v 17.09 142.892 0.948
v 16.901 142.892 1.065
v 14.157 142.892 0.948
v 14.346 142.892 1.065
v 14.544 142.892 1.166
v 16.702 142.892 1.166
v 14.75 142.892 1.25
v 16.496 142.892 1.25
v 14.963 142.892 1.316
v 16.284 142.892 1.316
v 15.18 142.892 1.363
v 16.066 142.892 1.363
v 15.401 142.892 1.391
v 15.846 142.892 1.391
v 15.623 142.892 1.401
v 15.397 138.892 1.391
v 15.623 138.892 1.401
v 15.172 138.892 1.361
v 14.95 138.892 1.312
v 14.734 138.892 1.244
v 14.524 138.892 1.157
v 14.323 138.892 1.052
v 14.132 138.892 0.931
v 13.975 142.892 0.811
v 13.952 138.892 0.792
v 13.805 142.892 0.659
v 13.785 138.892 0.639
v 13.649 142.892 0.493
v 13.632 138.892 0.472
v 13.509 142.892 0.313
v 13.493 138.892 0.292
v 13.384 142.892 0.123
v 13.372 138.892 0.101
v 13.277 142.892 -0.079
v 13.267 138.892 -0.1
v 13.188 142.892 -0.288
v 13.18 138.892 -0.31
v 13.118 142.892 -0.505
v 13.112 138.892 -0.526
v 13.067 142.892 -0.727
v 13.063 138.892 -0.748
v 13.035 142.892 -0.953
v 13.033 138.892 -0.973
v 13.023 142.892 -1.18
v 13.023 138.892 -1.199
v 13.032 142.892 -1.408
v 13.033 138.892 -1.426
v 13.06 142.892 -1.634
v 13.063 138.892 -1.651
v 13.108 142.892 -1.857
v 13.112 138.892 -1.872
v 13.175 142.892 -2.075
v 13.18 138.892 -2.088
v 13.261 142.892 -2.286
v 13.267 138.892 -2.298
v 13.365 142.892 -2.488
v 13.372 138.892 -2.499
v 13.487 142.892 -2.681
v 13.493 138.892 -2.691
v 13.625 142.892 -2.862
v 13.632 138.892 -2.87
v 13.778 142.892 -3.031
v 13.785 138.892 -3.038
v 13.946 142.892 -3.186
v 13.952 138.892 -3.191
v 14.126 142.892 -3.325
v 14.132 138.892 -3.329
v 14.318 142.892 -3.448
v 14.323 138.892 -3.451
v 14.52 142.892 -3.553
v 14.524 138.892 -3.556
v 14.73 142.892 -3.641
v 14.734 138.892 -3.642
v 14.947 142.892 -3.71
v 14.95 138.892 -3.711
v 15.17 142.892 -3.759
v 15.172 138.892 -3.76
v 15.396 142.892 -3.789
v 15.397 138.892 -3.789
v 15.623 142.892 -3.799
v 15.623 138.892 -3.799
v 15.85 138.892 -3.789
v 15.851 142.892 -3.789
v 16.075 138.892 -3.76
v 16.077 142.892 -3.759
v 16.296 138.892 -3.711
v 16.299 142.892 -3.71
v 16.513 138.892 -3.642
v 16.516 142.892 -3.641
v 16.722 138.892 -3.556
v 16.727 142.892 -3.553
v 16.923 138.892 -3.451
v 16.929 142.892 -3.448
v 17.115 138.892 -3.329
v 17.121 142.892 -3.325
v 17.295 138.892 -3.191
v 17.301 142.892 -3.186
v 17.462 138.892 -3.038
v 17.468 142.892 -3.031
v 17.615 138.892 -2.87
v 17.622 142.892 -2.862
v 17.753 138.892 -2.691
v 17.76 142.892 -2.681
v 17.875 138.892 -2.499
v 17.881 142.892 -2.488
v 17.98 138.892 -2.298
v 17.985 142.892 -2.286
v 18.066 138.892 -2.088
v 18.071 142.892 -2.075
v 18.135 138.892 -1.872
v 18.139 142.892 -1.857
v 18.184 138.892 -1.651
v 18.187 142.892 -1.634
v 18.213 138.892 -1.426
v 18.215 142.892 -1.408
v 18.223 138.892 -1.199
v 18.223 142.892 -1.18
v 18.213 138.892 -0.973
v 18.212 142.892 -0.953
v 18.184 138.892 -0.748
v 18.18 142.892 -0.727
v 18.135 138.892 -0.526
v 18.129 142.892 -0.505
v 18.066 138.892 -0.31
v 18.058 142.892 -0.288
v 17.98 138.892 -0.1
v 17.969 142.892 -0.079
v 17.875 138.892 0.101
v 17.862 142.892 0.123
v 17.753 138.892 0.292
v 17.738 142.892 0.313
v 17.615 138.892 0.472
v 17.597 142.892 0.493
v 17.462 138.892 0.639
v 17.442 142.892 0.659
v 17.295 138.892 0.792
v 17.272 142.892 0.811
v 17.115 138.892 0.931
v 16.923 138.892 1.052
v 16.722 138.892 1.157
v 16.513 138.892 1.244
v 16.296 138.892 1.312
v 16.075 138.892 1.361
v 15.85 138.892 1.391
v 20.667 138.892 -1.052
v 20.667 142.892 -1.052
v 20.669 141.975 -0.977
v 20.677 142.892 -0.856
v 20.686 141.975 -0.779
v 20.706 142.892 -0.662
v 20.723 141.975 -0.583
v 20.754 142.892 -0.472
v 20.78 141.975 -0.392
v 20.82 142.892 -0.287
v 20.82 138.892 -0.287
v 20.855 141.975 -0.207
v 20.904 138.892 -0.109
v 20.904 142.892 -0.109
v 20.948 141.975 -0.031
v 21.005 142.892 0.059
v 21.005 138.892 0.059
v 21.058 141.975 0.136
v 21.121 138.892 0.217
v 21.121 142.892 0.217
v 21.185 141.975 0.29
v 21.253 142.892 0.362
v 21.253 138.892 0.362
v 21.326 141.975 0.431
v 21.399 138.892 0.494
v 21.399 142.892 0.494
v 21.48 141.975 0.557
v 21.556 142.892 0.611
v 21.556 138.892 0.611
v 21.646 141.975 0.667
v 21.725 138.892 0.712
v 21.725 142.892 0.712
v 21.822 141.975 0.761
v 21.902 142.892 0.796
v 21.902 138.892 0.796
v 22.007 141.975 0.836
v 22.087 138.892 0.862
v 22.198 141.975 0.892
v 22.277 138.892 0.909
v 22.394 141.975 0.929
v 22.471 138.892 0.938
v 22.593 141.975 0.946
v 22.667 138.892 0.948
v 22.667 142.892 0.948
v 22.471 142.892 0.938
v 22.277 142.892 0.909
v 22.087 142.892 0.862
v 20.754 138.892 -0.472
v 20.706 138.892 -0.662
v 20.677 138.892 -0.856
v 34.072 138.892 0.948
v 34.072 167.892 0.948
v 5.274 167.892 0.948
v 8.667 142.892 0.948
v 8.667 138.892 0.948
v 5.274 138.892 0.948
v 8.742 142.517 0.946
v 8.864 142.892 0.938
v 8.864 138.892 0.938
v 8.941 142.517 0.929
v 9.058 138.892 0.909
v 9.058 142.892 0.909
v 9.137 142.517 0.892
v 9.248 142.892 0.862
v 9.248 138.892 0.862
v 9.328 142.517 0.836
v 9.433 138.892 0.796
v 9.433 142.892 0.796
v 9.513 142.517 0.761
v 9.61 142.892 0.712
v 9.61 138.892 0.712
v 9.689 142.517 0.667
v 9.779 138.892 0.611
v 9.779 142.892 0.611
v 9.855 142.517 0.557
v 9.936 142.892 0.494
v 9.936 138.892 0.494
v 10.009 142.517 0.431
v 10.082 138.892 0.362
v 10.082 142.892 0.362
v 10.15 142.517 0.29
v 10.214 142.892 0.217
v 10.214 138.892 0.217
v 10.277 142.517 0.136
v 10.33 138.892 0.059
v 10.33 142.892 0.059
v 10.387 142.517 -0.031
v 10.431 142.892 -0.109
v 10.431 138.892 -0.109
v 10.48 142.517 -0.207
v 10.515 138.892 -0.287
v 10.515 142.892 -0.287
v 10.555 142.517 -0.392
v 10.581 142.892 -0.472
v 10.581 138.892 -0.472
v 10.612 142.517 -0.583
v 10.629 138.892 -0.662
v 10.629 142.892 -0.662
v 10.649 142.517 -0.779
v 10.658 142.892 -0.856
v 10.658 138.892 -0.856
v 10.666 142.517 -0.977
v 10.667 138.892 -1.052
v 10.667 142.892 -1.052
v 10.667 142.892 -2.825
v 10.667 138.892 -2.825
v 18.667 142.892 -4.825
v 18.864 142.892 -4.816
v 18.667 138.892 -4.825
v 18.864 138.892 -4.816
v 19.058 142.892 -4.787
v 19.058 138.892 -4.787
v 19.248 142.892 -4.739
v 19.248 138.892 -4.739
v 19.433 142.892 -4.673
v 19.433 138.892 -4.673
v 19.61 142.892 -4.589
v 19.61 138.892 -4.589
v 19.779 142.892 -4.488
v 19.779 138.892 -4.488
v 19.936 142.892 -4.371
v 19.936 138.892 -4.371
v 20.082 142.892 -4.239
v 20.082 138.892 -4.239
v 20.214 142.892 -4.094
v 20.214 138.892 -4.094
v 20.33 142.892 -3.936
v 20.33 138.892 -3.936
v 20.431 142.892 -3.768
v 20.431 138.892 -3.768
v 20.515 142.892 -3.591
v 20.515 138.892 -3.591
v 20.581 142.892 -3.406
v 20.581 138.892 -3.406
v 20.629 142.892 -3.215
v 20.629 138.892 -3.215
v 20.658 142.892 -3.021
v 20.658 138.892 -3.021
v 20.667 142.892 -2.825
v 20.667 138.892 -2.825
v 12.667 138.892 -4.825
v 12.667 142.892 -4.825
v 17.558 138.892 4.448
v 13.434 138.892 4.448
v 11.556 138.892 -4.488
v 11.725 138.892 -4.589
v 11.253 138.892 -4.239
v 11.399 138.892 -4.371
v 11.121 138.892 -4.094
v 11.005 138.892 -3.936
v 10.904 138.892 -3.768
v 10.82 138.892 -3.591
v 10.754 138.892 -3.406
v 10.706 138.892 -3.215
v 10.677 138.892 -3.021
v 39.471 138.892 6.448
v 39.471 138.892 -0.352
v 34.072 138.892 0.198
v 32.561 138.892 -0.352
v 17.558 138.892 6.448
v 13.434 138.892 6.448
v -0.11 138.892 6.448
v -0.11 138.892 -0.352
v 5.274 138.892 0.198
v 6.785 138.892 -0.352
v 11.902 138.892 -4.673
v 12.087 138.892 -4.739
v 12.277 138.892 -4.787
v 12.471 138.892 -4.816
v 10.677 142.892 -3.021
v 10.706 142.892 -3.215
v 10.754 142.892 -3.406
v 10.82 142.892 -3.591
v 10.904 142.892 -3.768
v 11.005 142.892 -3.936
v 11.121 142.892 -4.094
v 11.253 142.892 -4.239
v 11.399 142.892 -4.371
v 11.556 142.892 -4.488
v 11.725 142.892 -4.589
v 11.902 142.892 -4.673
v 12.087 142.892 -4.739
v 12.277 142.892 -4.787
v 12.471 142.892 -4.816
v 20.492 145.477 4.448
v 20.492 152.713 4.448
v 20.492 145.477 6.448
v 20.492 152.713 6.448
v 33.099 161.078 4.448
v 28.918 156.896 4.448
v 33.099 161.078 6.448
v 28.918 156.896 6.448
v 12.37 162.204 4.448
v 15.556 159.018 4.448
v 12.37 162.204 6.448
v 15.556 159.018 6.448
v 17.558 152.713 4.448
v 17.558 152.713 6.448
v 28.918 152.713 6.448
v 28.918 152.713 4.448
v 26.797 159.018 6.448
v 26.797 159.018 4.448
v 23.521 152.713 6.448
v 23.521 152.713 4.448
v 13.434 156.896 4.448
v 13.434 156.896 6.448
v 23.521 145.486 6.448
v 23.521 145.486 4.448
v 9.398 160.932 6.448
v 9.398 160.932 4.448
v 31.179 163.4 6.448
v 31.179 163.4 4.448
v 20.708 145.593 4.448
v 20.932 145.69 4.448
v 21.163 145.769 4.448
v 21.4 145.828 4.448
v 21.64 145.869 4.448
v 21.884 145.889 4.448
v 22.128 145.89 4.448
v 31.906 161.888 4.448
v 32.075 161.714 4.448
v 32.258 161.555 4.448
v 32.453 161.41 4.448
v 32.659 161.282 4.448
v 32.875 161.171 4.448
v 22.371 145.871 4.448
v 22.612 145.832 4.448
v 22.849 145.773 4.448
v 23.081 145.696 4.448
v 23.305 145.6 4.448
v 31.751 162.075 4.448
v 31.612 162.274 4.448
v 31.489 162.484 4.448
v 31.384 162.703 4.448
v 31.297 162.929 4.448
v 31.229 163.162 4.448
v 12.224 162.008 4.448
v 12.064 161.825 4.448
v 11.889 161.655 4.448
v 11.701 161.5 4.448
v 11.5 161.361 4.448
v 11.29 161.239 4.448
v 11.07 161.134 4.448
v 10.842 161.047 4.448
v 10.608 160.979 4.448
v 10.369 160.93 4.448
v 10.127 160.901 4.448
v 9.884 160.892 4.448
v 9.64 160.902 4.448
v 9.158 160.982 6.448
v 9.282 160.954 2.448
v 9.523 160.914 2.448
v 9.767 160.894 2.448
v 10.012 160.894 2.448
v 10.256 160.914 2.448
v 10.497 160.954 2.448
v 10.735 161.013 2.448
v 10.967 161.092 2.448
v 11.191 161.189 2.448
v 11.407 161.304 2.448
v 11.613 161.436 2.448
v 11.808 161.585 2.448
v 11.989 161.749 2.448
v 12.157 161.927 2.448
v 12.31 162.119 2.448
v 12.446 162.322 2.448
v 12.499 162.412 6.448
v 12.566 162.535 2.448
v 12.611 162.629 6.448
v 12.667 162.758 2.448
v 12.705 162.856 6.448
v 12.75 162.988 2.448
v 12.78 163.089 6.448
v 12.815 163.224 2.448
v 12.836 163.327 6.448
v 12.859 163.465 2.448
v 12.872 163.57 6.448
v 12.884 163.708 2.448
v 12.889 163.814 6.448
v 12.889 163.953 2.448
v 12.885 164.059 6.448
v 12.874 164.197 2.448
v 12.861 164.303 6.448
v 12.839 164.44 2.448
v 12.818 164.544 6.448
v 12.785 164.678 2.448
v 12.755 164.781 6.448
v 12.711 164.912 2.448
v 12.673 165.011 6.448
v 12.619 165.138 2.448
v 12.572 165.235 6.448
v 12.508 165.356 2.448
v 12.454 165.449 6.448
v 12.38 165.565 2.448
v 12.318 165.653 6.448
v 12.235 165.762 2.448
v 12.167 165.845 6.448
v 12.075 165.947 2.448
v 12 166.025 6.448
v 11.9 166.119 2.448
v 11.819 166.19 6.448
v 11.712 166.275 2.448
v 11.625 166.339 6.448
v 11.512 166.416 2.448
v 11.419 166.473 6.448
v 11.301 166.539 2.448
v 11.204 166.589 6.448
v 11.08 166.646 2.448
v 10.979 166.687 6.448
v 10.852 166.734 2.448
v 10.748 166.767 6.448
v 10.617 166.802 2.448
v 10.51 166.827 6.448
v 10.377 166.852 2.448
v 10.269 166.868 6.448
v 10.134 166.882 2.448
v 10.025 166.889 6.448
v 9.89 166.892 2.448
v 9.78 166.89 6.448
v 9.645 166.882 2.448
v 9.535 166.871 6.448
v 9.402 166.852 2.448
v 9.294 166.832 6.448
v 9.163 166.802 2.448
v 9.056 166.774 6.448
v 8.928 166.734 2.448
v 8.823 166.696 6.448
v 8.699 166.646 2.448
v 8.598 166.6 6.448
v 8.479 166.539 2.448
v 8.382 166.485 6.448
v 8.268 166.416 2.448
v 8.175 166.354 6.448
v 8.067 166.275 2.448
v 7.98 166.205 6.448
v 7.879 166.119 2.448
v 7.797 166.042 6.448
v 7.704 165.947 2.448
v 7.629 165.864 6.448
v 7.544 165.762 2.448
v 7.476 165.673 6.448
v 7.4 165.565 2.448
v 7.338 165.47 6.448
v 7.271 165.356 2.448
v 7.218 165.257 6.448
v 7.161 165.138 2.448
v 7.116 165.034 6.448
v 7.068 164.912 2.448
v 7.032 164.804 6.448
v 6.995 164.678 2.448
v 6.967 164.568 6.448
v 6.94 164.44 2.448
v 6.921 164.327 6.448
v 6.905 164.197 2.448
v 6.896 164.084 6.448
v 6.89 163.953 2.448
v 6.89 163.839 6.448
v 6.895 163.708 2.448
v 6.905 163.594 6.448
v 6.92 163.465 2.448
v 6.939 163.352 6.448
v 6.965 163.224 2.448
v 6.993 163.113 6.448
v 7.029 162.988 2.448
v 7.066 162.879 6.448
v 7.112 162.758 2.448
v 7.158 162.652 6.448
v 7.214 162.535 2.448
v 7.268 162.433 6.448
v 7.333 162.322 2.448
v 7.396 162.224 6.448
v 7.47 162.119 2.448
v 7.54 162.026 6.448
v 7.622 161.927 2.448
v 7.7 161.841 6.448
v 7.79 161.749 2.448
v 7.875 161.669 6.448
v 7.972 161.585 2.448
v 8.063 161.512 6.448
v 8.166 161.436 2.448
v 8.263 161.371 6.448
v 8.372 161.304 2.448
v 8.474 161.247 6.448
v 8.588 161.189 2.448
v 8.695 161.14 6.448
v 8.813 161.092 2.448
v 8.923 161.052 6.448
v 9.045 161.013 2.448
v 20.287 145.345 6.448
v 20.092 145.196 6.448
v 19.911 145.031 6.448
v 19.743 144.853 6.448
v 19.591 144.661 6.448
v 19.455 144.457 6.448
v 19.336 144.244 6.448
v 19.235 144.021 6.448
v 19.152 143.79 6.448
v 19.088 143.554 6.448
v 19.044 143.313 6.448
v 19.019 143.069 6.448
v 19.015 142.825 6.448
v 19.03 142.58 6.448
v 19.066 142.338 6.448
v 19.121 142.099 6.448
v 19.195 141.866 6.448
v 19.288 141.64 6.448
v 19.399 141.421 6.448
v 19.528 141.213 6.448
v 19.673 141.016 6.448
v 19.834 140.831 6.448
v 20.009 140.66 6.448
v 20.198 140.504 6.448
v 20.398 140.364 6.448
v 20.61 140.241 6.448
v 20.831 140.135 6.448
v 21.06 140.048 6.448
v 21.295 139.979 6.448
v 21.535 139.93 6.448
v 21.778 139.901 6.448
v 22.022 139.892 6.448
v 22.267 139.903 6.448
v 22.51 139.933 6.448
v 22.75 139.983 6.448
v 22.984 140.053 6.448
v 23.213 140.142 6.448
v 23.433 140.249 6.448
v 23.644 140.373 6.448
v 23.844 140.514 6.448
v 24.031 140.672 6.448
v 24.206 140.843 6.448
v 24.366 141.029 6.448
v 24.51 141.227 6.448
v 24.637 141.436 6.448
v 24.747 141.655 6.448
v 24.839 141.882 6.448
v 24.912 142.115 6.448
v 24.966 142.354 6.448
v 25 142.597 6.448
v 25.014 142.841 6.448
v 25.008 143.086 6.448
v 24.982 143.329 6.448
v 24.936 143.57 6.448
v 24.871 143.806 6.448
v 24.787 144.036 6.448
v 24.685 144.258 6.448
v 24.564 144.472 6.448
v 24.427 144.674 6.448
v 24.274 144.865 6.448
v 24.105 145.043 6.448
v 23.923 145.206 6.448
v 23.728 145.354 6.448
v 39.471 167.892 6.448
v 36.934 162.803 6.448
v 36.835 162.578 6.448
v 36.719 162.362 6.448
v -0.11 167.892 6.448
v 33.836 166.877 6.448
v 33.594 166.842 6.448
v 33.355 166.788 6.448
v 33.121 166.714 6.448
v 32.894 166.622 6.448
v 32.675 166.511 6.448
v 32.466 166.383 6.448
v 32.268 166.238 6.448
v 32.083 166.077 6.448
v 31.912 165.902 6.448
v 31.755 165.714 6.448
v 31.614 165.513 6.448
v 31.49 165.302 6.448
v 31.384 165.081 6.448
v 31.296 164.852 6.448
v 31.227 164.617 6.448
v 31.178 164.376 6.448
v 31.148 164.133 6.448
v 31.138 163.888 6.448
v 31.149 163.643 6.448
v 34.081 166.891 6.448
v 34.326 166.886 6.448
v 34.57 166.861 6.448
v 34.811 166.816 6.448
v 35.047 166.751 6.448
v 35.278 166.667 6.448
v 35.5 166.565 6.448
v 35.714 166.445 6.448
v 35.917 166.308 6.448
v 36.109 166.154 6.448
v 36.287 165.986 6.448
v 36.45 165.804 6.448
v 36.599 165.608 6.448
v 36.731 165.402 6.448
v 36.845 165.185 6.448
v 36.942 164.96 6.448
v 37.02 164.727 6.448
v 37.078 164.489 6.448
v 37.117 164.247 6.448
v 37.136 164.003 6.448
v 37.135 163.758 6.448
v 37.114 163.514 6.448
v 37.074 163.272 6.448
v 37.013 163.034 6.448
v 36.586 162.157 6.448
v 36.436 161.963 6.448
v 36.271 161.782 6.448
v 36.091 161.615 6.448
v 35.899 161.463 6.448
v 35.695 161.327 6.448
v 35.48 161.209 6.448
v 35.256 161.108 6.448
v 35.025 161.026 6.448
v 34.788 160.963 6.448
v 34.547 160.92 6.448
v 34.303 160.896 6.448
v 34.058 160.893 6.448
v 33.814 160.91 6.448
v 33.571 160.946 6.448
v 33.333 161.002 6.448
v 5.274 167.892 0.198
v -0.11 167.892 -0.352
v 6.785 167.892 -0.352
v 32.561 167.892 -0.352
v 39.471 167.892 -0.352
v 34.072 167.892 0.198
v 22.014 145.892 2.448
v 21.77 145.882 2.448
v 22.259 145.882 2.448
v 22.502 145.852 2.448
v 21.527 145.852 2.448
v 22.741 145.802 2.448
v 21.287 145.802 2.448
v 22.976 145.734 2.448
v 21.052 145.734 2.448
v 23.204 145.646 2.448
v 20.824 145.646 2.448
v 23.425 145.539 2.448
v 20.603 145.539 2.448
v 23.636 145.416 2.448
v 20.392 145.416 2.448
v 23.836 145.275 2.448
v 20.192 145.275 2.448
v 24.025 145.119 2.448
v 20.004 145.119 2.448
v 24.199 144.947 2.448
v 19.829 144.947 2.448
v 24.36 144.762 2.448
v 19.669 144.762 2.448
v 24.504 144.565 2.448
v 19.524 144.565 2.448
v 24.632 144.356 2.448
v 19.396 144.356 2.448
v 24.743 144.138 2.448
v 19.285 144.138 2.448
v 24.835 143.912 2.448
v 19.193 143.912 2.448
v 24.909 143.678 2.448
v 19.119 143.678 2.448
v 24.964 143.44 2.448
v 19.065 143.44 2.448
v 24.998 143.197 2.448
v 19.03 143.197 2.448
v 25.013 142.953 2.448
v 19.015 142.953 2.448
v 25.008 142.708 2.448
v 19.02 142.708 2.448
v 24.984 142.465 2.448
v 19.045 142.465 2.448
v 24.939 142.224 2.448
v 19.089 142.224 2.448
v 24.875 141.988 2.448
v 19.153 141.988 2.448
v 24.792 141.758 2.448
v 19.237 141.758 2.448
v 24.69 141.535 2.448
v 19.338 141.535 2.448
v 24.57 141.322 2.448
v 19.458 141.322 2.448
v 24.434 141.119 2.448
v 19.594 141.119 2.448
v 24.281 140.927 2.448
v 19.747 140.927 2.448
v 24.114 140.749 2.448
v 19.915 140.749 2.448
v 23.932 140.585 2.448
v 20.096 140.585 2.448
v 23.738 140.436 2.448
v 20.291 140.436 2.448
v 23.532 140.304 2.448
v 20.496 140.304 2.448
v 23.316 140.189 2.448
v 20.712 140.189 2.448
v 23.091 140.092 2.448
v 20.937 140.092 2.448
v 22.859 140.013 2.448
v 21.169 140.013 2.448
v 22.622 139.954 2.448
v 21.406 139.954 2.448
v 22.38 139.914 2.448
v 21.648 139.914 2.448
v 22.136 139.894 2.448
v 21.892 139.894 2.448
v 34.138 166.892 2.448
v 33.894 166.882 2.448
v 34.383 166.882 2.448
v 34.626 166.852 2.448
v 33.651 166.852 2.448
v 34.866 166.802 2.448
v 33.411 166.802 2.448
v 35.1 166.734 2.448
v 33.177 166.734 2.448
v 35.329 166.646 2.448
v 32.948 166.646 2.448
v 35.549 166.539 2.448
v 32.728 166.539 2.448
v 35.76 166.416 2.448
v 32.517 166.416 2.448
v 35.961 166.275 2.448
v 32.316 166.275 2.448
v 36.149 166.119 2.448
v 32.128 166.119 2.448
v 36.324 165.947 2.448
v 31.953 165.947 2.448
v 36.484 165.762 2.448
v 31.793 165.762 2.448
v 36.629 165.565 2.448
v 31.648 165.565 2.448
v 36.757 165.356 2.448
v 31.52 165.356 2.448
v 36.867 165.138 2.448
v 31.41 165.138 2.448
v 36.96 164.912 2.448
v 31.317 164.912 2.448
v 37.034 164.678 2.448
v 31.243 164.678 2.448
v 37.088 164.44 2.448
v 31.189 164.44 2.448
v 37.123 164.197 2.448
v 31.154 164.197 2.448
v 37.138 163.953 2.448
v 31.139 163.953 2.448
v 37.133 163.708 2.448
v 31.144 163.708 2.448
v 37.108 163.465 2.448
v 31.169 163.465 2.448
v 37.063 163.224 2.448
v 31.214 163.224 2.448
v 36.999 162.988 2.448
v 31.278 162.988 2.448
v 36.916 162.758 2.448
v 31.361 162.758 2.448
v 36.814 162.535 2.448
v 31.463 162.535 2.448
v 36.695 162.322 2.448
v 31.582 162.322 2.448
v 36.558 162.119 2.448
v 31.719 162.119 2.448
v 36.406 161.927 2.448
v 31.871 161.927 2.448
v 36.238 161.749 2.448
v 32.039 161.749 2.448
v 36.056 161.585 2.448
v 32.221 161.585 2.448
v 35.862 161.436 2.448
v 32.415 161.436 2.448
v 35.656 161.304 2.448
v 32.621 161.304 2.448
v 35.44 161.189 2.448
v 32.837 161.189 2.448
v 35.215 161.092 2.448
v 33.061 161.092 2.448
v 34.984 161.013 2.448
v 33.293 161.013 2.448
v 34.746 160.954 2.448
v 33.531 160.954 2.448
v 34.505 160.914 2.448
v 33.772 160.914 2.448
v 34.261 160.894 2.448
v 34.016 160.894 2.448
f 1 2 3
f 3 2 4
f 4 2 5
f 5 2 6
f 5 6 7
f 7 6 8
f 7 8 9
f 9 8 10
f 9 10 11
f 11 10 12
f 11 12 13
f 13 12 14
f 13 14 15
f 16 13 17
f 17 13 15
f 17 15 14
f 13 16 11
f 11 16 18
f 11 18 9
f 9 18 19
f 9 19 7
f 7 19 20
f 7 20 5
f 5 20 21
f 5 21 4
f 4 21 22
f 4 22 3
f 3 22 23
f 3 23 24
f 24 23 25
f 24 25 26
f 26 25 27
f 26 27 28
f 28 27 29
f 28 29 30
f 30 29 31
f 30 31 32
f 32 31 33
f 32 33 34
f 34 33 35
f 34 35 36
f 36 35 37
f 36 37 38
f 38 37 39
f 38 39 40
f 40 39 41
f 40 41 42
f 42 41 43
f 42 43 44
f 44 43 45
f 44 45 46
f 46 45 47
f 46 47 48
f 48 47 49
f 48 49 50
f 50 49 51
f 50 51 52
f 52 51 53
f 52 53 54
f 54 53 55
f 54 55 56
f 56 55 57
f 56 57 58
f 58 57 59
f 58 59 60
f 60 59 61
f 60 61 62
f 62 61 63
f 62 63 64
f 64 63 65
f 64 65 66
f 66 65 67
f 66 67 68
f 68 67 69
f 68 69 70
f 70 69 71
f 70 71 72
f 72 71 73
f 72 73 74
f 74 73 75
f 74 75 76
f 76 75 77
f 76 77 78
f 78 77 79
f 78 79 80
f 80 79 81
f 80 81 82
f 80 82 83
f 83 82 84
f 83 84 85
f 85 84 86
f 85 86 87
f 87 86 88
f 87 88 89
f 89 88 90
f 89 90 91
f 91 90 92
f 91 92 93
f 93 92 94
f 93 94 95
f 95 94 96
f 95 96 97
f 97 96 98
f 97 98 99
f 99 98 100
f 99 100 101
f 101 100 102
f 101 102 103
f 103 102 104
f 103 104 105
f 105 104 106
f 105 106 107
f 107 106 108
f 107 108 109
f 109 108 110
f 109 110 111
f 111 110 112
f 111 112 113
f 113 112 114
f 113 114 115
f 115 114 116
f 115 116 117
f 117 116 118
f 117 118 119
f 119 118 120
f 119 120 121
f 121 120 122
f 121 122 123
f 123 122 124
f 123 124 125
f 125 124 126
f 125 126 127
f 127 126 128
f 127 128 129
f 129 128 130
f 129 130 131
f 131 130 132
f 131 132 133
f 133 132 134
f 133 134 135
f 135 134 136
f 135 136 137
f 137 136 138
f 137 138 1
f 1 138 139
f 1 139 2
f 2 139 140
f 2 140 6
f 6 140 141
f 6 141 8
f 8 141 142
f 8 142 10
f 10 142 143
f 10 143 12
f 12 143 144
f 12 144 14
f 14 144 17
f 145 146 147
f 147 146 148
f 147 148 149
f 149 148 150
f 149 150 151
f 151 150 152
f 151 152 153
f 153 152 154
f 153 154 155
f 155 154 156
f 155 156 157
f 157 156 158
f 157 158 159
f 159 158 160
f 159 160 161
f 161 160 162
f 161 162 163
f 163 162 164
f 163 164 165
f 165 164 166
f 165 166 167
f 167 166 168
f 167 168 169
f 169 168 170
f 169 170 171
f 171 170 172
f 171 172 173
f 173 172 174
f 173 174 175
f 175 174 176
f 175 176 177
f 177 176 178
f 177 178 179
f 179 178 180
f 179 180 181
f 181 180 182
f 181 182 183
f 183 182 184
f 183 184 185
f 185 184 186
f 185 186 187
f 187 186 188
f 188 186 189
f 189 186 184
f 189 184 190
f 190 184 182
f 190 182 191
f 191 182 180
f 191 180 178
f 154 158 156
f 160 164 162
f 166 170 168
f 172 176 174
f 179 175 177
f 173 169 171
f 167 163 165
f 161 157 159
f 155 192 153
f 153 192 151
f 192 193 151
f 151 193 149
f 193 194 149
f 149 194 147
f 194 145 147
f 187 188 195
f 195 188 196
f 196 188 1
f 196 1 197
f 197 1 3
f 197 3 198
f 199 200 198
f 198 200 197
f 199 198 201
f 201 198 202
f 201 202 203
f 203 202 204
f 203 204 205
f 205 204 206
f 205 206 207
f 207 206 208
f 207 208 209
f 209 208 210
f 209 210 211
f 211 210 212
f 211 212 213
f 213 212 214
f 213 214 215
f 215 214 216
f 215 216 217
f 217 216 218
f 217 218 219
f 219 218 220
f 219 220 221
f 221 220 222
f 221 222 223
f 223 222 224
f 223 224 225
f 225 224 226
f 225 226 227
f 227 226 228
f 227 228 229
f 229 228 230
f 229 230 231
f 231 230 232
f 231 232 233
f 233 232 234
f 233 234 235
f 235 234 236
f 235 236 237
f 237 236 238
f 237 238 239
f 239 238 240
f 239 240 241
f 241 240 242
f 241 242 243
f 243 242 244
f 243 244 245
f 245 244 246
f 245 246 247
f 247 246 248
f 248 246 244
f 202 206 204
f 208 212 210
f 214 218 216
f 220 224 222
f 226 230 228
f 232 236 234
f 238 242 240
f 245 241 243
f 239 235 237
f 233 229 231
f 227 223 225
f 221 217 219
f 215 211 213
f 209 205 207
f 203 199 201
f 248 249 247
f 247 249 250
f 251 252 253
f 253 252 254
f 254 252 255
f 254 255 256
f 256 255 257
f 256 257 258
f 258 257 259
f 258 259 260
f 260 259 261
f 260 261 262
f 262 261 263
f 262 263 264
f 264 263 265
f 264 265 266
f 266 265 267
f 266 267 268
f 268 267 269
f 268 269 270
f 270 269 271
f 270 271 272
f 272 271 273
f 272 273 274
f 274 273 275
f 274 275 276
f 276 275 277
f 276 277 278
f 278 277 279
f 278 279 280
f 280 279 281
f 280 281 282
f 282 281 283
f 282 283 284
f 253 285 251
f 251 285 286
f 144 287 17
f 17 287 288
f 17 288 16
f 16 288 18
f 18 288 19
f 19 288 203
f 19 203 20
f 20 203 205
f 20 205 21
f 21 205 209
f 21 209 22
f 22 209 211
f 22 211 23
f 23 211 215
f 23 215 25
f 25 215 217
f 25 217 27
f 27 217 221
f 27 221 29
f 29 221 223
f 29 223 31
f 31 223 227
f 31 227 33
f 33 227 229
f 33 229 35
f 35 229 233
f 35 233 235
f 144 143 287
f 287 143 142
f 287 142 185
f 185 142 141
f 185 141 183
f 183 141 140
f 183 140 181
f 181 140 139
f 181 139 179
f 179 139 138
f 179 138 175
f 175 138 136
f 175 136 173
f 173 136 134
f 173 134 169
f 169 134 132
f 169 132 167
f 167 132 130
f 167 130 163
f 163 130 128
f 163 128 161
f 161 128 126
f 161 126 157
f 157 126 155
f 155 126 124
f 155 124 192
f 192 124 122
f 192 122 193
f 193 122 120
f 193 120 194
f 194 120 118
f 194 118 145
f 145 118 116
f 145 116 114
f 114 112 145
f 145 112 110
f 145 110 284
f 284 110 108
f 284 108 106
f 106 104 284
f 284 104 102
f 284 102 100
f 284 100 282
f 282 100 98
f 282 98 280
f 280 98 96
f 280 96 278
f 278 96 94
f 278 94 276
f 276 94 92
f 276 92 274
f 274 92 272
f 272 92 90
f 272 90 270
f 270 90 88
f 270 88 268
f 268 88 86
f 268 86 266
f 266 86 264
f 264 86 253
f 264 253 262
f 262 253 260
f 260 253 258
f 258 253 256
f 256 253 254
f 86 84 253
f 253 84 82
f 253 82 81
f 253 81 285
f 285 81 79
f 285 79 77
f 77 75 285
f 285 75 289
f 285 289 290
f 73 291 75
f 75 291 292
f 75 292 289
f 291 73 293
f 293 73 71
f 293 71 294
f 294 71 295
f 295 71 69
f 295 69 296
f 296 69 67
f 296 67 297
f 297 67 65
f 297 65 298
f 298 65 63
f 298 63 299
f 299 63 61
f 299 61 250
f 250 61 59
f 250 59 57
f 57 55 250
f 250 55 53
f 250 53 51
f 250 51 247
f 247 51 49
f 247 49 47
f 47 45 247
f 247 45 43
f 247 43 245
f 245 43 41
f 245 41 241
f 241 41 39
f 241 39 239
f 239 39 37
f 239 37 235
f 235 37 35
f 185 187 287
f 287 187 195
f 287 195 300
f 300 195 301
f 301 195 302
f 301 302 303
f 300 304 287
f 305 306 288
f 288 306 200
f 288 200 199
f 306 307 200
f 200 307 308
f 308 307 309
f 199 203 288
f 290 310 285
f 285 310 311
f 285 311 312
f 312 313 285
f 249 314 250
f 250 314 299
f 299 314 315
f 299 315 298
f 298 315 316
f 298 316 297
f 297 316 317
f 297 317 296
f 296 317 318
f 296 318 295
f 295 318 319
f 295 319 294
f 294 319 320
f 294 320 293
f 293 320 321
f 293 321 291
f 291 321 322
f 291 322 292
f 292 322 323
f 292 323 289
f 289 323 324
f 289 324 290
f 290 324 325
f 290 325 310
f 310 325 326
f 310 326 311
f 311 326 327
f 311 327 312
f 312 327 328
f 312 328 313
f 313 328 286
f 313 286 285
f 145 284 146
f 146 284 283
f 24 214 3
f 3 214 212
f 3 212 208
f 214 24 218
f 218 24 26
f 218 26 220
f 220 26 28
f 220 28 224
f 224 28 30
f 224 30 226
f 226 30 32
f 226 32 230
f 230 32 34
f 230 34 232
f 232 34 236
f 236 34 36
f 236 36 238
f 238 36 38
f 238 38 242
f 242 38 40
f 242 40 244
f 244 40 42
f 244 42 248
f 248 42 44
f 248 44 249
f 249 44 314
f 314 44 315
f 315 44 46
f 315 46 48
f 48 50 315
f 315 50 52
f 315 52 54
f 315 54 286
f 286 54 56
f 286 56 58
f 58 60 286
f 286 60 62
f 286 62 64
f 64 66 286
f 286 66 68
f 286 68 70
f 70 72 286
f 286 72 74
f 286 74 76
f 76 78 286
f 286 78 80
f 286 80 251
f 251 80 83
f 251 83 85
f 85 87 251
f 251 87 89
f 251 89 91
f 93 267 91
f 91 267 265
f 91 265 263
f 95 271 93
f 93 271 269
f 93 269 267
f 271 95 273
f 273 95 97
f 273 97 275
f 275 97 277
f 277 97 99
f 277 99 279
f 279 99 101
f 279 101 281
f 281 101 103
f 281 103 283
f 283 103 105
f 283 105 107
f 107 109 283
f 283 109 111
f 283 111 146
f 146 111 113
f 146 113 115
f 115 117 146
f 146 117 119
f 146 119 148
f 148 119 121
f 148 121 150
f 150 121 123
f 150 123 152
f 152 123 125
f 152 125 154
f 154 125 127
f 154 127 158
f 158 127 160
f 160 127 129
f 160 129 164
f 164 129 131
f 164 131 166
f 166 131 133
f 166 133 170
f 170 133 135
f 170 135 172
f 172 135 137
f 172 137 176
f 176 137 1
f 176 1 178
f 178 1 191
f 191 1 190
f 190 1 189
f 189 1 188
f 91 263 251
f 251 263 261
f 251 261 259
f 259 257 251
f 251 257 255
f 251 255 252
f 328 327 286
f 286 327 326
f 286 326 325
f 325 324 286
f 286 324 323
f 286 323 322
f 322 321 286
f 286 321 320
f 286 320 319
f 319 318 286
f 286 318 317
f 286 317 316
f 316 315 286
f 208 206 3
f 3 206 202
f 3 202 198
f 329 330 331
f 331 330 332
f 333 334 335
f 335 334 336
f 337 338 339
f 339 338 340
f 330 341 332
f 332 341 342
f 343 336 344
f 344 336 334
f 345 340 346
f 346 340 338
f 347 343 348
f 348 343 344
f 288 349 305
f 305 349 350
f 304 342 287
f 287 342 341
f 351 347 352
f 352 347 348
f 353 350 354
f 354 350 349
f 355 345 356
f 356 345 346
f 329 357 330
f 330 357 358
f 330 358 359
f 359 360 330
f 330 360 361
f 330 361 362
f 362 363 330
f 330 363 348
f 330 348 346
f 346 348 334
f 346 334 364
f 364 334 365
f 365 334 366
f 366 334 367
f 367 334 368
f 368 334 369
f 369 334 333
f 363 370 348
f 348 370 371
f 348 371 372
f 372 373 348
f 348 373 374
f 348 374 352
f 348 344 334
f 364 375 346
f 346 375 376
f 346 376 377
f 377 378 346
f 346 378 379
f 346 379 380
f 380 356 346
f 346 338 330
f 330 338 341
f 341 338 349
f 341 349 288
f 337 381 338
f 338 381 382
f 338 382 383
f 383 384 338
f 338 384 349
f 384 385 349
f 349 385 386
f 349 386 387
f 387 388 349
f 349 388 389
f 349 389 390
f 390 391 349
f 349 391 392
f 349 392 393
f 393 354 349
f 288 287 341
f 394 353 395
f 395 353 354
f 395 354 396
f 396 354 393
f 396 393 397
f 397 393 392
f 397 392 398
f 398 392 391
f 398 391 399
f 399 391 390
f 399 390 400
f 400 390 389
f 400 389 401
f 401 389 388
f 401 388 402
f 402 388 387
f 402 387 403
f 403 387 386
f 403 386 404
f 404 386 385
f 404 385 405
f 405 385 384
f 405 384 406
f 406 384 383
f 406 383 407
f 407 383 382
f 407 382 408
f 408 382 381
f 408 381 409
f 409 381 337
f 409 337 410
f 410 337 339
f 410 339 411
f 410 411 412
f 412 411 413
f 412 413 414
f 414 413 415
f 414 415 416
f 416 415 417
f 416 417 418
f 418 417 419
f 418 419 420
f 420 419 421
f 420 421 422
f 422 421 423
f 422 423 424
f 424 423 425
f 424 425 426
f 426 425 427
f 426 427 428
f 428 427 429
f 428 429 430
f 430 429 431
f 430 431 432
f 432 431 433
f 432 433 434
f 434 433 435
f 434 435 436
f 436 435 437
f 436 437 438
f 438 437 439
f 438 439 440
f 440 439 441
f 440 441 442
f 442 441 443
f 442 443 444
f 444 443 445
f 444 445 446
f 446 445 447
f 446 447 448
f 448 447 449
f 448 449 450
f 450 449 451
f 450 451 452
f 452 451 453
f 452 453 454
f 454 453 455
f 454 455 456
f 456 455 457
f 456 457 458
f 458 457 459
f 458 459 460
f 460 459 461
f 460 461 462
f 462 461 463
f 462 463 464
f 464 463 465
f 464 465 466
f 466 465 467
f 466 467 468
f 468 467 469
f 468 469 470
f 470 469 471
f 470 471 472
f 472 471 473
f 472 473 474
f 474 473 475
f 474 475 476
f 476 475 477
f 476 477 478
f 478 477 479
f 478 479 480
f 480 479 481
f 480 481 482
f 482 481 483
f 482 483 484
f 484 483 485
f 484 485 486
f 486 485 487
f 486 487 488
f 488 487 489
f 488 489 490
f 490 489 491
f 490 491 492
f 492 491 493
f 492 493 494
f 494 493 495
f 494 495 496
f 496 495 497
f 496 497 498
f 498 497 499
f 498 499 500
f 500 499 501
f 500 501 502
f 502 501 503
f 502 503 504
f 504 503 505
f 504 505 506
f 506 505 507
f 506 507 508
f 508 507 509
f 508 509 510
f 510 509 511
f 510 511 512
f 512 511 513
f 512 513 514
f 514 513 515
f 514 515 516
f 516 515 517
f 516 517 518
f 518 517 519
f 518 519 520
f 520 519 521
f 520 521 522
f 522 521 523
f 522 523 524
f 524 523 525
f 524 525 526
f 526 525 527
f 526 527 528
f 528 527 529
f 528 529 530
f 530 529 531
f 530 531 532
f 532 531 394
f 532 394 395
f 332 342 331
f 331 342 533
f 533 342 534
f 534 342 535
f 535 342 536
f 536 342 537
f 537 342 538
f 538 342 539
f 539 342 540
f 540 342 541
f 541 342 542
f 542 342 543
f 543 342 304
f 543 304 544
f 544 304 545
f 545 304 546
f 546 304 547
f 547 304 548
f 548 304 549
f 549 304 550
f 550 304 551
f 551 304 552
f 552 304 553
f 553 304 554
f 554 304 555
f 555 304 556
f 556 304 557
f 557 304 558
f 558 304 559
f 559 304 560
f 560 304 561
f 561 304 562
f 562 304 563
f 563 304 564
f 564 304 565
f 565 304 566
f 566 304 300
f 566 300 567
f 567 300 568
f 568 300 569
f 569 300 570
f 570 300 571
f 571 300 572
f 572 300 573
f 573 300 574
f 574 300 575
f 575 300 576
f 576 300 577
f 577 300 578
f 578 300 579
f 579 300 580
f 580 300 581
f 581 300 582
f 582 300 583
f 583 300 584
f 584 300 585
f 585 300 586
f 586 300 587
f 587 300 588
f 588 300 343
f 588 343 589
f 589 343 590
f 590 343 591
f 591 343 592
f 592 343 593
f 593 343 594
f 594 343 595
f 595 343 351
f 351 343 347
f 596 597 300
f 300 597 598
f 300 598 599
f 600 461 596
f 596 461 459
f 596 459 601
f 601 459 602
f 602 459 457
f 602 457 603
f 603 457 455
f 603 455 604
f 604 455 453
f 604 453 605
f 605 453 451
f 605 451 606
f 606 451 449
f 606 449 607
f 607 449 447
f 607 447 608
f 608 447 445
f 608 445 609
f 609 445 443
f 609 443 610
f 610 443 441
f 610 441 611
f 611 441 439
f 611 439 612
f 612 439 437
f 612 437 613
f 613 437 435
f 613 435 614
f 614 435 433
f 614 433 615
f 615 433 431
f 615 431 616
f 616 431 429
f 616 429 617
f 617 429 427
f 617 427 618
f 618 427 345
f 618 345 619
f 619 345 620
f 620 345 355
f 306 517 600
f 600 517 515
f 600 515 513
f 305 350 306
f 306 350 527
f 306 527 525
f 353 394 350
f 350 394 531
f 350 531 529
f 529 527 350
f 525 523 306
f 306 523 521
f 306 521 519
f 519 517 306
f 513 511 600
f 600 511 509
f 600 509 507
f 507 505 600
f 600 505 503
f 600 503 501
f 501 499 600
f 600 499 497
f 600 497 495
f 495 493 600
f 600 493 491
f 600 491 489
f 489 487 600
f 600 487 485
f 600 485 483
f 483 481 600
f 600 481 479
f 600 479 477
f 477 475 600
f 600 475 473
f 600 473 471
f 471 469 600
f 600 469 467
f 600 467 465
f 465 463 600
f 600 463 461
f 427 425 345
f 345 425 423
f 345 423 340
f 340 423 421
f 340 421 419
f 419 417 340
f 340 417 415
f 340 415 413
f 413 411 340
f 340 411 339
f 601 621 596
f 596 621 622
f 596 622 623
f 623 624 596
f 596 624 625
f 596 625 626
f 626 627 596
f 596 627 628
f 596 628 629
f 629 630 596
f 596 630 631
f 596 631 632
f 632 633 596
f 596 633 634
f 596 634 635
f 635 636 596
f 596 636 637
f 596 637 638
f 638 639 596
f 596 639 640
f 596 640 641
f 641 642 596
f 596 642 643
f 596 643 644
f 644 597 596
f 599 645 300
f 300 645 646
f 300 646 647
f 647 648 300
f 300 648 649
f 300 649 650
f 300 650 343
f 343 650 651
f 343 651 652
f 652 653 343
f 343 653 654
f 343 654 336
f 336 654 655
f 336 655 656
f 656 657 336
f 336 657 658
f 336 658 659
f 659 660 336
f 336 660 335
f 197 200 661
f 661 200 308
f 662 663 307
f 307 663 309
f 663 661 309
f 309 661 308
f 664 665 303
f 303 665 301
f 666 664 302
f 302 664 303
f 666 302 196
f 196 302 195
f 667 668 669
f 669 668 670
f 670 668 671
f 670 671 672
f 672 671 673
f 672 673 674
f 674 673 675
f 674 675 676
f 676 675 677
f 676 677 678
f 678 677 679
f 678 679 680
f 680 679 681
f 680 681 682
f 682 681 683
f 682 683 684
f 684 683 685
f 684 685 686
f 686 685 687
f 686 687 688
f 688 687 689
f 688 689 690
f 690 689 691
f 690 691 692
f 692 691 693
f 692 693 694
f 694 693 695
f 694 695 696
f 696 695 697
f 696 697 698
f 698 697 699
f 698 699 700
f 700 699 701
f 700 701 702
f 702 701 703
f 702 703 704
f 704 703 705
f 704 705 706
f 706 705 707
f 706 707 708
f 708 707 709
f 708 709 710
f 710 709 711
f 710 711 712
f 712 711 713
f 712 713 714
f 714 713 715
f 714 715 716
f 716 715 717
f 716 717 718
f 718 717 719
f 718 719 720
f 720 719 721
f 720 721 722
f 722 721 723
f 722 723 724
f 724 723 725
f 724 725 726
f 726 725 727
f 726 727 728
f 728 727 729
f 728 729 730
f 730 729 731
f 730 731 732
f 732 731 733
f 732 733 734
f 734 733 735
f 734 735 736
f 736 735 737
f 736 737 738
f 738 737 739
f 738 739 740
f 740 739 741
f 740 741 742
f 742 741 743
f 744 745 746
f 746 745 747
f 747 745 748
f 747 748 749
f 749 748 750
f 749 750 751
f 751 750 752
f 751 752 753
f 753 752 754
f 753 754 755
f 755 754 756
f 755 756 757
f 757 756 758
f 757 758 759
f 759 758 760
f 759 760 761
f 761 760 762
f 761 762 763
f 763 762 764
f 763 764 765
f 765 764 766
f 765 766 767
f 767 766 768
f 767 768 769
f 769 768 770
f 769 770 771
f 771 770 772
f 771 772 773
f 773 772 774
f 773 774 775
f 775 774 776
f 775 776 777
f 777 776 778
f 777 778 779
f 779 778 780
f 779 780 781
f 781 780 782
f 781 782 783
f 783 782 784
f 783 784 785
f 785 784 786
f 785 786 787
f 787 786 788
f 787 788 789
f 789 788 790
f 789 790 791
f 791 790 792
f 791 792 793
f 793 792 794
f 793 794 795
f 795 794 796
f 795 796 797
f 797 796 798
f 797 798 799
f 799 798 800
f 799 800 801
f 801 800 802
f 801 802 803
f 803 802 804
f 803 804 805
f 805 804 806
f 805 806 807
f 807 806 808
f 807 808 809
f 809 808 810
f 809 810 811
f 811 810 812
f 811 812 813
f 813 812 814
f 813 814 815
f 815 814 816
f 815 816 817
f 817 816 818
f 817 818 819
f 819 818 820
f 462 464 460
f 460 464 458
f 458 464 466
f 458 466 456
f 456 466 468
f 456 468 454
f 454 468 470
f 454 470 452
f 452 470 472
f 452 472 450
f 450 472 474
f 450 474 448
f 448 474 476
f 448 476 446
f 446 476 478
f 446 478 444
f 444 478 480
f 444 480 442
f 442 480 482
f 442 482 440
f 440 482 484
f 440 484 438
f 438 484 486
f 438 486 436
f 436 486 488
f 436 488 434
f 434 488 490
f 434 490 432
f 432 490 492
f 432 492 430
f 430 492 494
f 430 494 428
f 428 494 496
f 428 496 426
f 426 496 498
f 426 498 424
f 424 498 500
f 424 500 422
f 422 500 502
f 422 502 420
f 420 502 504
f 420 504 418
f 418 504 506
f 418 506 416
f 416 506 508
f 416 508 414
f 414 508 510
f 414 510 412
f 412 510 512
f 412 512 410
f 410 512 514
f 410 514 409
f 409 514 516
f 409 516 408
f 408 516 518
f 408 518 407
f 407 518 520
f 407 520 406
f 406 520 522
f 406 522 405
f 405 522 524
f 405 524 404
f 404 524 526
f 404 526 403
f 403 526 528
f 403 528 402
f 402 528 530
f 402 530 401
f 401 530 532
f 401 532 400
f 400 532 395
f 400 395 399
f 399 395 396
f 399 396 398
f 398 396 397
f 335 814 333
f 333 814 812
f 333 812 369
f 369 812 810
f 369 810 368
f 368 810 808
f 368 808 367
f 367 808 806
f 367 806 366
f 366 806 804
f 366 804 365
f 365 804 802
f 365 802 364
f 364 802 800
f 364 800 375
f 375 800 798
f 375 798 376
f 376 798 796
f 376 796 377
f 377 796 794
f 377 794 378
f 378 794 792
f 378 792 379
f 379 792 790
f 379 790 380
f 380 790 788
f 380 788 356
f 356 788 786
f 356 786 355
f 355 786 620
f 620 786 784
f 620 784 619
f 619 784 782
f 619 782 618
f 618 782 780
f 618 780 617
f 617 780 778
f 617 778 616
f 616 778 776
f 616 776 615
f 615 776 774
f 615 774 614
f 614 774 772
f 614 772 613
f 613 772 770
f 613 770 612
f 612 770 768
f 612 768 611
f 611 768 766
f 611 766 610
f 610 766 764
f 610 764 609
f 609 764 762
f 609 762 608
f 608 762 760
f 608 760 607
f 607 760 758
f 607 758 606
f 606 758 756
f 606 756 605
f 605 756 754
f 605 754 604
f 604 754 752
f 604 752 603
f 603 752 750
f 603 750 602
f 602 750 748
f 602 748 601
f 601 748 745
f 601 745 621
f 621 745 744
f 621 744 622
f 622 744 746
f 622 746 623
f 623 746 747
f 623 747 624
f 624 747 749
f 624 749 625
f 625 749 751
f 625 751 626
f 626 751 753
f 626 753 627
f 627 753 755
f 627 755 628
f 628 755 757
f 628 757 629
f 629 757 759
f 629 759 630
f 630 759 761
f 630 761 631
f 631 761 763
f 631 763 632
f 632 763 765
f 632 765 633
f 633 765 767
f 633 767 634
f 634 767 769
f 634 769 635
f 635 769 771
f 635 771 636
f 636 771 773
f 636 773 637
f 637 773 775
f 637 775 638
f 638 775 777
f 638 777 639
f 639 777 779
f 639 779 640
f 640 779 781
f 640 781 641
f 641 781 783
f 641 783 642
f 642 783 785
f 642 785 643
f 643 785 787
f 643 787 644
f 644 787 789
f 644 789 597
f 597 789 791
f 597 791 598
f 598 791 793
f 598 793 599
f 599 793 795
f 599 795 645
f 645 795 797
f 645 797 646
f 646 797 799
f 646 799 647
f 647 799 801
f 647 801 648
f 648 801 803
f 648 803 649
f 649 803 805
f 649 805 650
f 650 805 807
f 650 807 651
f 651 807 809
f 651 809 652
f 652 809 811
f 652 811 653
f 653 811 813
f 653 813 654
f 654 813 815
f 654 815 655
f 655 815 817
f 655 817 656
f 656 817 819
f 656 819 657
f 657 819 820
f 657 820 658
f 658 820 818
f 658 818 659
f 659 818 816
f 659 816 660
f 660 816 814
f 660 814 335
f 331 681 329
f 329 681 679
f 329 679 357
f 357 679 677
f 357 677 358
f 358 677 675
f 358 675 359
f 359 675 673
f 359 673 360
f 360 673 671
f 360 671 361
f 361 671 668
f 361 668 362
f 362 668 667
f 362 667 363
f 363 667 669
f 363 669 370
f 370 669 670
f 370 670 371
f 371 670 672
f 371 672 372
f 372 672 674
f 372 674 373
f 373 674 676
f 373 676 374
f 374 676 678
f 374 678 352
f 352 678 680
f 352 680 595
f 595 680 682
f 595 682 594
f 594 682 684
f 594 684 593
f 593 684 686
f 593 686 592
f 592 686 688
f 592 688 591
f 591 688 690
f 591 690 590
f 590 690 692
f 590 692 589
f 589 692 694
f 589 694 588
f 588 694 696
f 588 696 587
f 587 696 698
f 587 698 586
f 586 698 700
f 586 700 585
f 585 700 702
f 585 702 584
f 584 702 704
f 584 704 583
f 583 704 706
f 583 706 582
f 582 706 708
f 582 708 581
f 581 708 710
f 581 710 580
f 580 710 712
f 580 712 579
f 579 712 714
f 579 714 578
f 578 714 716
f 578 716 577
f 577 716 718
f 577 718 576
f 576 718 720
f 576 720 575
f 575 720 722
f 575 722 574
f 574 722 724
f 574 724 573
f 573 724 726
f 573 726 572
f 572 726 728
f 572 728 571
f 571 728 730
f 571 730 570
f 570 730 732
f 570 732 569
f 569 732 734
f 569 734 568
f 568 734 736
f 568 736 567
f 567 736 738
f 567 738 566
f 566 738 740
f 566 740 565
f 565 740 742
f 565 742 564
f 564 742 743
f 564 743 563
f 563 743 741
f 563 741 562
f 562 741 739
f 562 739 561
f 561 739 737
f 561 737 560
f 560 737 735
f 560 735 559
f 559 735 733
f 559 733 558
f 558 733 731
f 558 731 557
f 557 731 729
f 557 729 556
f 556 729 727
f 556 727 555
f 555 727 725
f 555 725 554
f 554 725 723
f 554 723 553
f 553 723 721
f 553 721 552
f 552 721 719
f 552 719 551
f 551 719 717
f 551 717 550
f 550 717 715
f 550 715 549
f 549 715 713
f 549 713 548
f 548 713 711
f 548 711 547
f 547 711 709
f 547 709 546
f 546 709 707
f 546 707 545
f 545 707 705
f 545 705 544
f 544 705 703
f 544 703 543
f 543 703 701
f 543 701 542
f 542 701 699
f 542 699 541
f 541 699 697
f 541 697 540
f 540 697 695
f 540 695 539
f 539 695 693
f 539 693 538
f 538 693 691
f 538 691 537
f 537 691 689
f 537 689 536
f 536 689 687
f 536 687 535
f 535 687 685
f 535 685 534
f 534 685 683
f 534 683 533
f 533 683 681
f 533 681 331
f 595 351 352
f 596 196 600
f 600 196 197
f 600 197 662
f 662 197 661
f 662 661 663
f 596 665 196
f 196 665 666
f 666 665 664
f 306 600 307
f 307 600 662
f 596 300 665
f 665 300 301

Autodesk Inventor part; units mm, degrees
ref_plane "YZ Plane" through (0, 0, 0) normal (1, 0, 0) x (0, 1, 0)
ref_plane "XZ Plane" through (0, 0, 0) normal (0, 1, 0) x (-1, 0, 0)
ref_plane "XY Plane" through (0, 0, 0) normal (0, 0, 1) x (1, 0, 0)
ref_plane "Work Plane1" through (52.5141, 202.7033, 6.4479) normal (0, 0, -1) x (0, 1, 0)
sketch "Sketch1" plane through (52.5141, 202.7033, 6.4479) normal (0, 0, -1) x (0, 1, 0)
  circle A0 centre (-59.8114, -30.5) radius 1.4 construction
  circle A1 centre (-38.8114, -18.3756) radius 1.4 projected
  circle A2 centre (-38.8114, -42.6244) radius 1.4 construction
  circle A3 centre (41, 0) radius 1.65 projected
  circle A4 centre (-9, 0) radius 1.65 projected
  circle A5 centre (-9, 50) radius 1.65 projected
  circle A6 centre (41, 50) radius 1.65 projected
  circle A7 centre (16, 50) radius 1.65 projected
  circle A8 centre (-9, 25) radius 1.65 projected
  circle A9 centre (16, 0) radius 1.65 projected
  circle A10 centre (41, 25) radius 1.65 projected
  line L0 (80, 55) -> (-80, 55) projected
  line L1 (-80, 55) -> (-80, -55) projected
  line L2 (-80, -55) -> (80, -55) projected
  line L3 (80, -55) -> (80, 55) projected
  line L4 (-36.5, 0) -> (-36.5, -50) projected
  line L5 (-14, 0) -> (-36.5, 0) projected
  line L6 (-14, -5) -> (-14, 0) projected
  line L7 (72, -5) -> (-14, -5) projected
  line L8 (72, -50) -> (72, -5) projected
  line L9 (-36.5, -50) -> (72, -50) projected
  line L10 (-4, 45) -> (-4, 5) projected
  line L11 (36, 45) -> (-4, 45) projected
  line L12 (36, 5) -> (36, 45) projected
  line L13 (-4, 5) -> (36, 5) projected
  line L14 (-64.5989, -17.0433) -> (-64.5989, -57.0433) construction
  line L15 (-64.5989, -57.0433) -> (-34.5989, -57.0433) construction
  line L16 (-34.5989, -57.0433) -> (-34.5989, -17.0433) construction
  line L17 (-34.5989, -17.0433) -> (-64.5989, -17.0433) construction
  line L18 (-34.8114, -13.0433) -> (-63.8114, -13.0433)
  line L19 (-63.8114, -13.0433) -> (-63.8114, -52.6244)
  line L20 (-63.8114, -52.6244) -> (-34.8114, -52.6244)
  line L21 (-34.8114, -52.6244) -> (-34.8114, -13.0433)
  circle A11 centre (-59.8114, -30.5) radius 3
  circle A12 centre (-38.8114, -18.3756) radius 3
  circle A13 centre (-38.8114, -42.6244) radius 3 construction
  line L22 (-36.5, -35.1157) -> (-41.75, -35.1157) construction
  line L23 (-41.75, -35.1157) -> (-41.75, -38.5657) construction
  line L24 (-41.75, -38.5657) -> (-56.86, -38.5657) construction
  line L25 (-56.86, -38.5657) -> (-56.86, -35.1157) construction
  line L26 (-56.86, -35.1157) -> (-60.26, -35.1157) construction
  line L27 (-60.26, -35.1157) -> (-60.26, -52.0657) construction
  line L28 (-60.26, -52.0657) -> (-36.5, -52.0657) construction
  line L29 (-36.5, -52.0657) -> (-36.5, -35.1157) construction
  line L30 (-41.75, -28.3657) -> (-36.5, -28.3657) construction
  line L31 (-36.5, -28.3657) -> (-36.5, -25.0657) construction
  line L32 (-36.5, -25.0657) -> (-60.26, -25.0657) construction
  line L33 (-60.26, -25.0657) -> (-60.26, -28.3657) construction
  line L34 (-60.26, -28.3657) -> (-56.86, -28.3657) construction
  line L35 (-56.86, -28.3657) -> (-56.86, -27.0942) construction
  line L36 (-56.86, -27.0942) -> (-41.75, -27.0942) construction
  line L37 (-41.75, -27.0942) -> (-41.75, -28.3657) construction
  line L38 (-56.86, -35.1157) -> (-60.26, -35.1157) construction
  line L39 (-56.86, -38.5657) -> (-56.86, -35.1157) construction
  line L40 (-41.75, -38.5657) -> (-56.86, -38.5657) construction
  line L41 (-41.75, -35.1157) -> (-41.75, -38.5657) construction
  line L42 (-36.5, -35.1157) -> (-41.75, -35.1157) construction
  line L43 (-36.5, -35.05) -> (-36.5, -35.1157) construction
  line L44 (-36.5, -35.05) -> (-56.86, -35.05) construction
  line L45 (-36.5, -34.78) -> (-36.5, -35.05) construction
  line L46 (-36.5, -34.78) -> (-56.86, -34.78) construction
  line L47 (-36.5, -34.51) -> (-36.5, -34.78) construction
  line L48 (-36.5, -34.51) -> (-56.86, -34.51) construction
  line L49 (-36.5, -34.24) -> (-36.5, -34.51) construction
  line L50 (-36.5, -34.24) -> (-56.86, -34.24) construction
  line L51 (-36.5, -33.97) -> (-36.5, -34.24) construction
  line L52 (-36.5, -33.97) -> (-56.86, -33.97) construction
  line L53 (-36.5, -33.7) -> (-36.5, -33.97) construction
  line L54 (-36.5, -33.7) -> (-56.86, -33.7) construction
  line L55 (-36.5, -33.43) -> (-36.5, -33.7) construction
  line L56 (-36.5, -33.43) -> (-56.86, -33.43) construction
  line L57 (-36.5, -33.16) -> (-36.5, -33.43) construction
  line L58 (-36.5, -33.16) -> (-56.86, -33.16) construction
  line L59 (-36.5, -32.89) -> (-36.5, -33.16) construction
  line L60 (-36.5, -32.89) -> (-56.86, -32.89) construction
  line L61 (-36.5, -32.62) -> (-36.5, -32.89) construction
  line L62 (-36.5, -32.62) -> (-56.86, -32.62) construction
  line L63 (-36.5, -32.35) -> (-36.5, -32.62) construction
  line L64 (-36.5, -32.35) -> (-56.86, -32.35) construction
  line L65 (-36.5, -32.08) -> (-36.5, -32.35) construction
  line L66 (-36.5, -32.08) -> (-56.86, -32.08) construction
  line L67 (-36.5, -31.81) -> (-36.5, -32.08) construction
  line L68 (-36.5, -31.81) -> (-56.86, -31.81) construction
  line L69 (-36.5, -31.54) -> (-36.5, -31.81) construction
  line L70 (-36.5, -31.54) -> (-56.86, -31.54) construction
  line L71 (-36.5, -31.27) -> (-36.5, -31.54) construction
  line L72 (-36.5, -31.27) -> (-56.86, -31.27) construction
  line L73 (-36.5, -31) -> (-36.5, -31.27) construction
  line L74 (-36.5, -31) -> (-56.86, -31) construction
  line L75 (-36.5, -30.73) -> (-36.5, -31) construction
  line L76 (-36.5, -30.73) -> (-56.86, -30.73) construction
  line L77 (-36.5, -30.46) -> (-36.5, -30.73) construction
  line L78 (-36.5, -30.46) -> (-56.86, -30.46) construction
  line L79 (-36.5, -30.19) -> (-36.5, -30.46) construction
  line L80 (-36.5, -30.19) -> (-56.86, -30.19) construction
  line L81 (-36.5, -29.92) -> (-36.5, -30.19) construction
  line L82 (-36.5, -29.92) -> (-56.86, -29.92) construction
  line L83 (-36.5, -29.65) -> (-36.5, -29.92) construction
  line L84 (-36.5, -29.65) -> (-56.86, -29.65) construction
  line L85 (-36.5, -29.38) -> (-36.5, -29.65) construction
  line L86 (-36.5, -29.38) -> (-56.86, -29.38) construction
  line L87 (-36.5, -29.11) -> (-36.5, -29.38) construction
  line L88 (-36.5, -29.11) -> (-56.86, -29.11) construction
  line L89 (-36.5, -28.84) -> (-36.5, -29.11) construction
  line L90 (-36.5, -28.84) -> (-56.86, -28.84) construction
  line L91 (-36.5, -28.3657) -> (-36.5, -28.84) construction
  line L92 (-41.75, -28.3657) -> (-36.5, -28.3657) construction
  line L93 (-41.75, -27.0942) -> (-41.75, -28.3657) construction
  line L94 (-56.86, -27.0942) -> (-41.75, -27.0942) construction
  line L95 (-56.86, -28.3657) -> (-56.86, -27.0942) construction
  line L96 (-60.26, -28.3657) -> (-56.86, -28.3657) construction
  line L97 (-60.26, -35.1157) -> (-60.26, -28.3657) construction
  line L98 (-60.26, -25.0657) -> (-36.5, -25.0657) construction
  line L99 (-36.5, -25.0657) -> (-36.5, -52.0657) construction
  line L100 (-60.26, -52.0657) -> (-60.26, -25.0657) construction
  line L101 (-57.1632, -22.5233) -> (-33.4032, -22.5233) construction
  line L102 (-33.4032, -22.5233) -> (-33.4032, -49.5233) construction
  line L103 (-33.4032, -49.5233) -> (-57.1632, -49.5233) construction
  line L104 (-57.1632, -49.5233) -> (-57.1632, -22.5233) construction
  circle A14 centre (-38.8114, -42.6244) radius 3
  point P0 (-202.7033, -52.5141)
  point P1 (-56.7146, -27.9576)
  dimension "d0" = 4
  dimension "d2" = 4
  dimension "d3" = 4
  dimension "d4" = 6
  dimension "d5" = 6
  dimension "d6" = 6
  dimension "d10" = 10
extrude "Extrusion1" add sketch "Sketch1" along normal blind 4 contours L18 L21 L9 L4 A14 A12 | L4 A12 A14 L9 L21 L20 L19 L18
sketch "Sketch2" plane through (52.5141, 202.7033, 2.4479) normal (0, 0, -1) x (-1, 0, 0)
  circle A0 centre (42.6244, -38.8114) radius 3 projected
  circle A1 centre (18.3756, -38.8114) radius 3 projected
  circle A2 centre (30.5, -59.8114) radius 3 projected
  line L0 (13.0433, -34.8114) -> (13.0433, -63.8114) projected
  line L1 (13.0433, -63.8114) -> (52.6244, -63.8114) projected
  line L2 (52.6244, -63.8114) -> (52.6244, -34.8114) projected
  line L3 (52.6244, -34.8114) -> (13.0433, -34.8114) projected
  point P0 (52.5141, -202.7033)
extrude "Extrusion2" add sketch "Sketch2" along normal blind 1.5 contours A0 | A1 | A2 | L3 L2 L1 L0
sketch "Sketch3" plane through (-0.1103, 138.8919, 6.4479) normal (0, -1, 0) x (1, 0, 0)
  line L0 (39.581, 0) -> (0, 0) construction
  line L1 (0, 0) -> (0, -5.5) construction
  line L2 (39.581, -5.5) -> (0, -5.5) projected
  line L3 (39.581, 0) -> (39.581, -5.5) projected
  line L4 (17.5087, -7.4479) -> (17.5087, -6.8479) construction
  line L5 (17.5087, -6.8479) -> (24.2587, -6.8479) construction
  line L6 (24.2587, -6.8479) -> (24.2587, -7.4479) construction
  line L7 (27.5587, -7.4479) -> (24.2587, -7.4479) construction
  line L8 (27.5587, -6.4479) -> (27.5587, -7.4479) construction
  line L9 (27.5587, -6.4479) -> (0.5587, -6.4479) construction
  line L10 (0.5587, -6.4479) -> (0.5587, -7.4479) construction
  line L11 (17.5087, -7.4479) -> (0.5587, -7.4479) construction
  line L12 (39.581, 0) -> (39.581, -5.5) construction
  line L13 (39.581, -5.5) -> (34.1825, -5.5)
  line L14 (34.1825, -5.5) -> (34.1825, -6.25)
  line L15 (34.8694, -6.8) -> (39.581, -6.8)
  line L16 (39.581, -6.8) -> (39.581, -5.5)
  line L17 (39.581, -6.8) -> (32.6714, -6.8)
  line L18 (32.6714, -6.8) -> (34.1825, -6.25)
  line L19 (12.6726, -5.5) -> (12.6726, -6.5) projected
  line L20 (0, 0) -> (0, -5.5) construction
  line L21 (0, -5.5) -> (5.3846, -5.5)
  line L22 (6.8957, -6.8) -> (0, -6.8)
  line L23 (0, -6.8) -> (0, -5.5)
  line L24 (6.8957, -6.8) -> (6.8957, -6.8)
  line L25 (0, -5.5) -> (39.581, -5.5) projected
  line L26 (6.8957, -6.8) -> (5.3846, -6.25)
  line L27 (5.3846, -6.25) -> (5.3846, -5.5)
  line L28 (5.9957, -5.5) -> (33.4957, -5.5) construction
  line L29 (33.4957, -5.5) -> (33.4957, -6.5) construction
  line L30 (33.4957, -6.5) -> (5.9957, -6.5) construction
  line L31 (5.9957, -6.5) -> (5.9957, -5.5) construction
  point P0 (8.981, -5.5)
  dimension "d42" = 1.3
  dimension "d43" = 110
  dimension "d45" = 0.75
  dimension "h1" = 0.75
  dimension "d47" = 110
  dimension "d48" = 27.5
  dimension "d49" = 1
  dimension "d50" = 0.9
  dimension "d51" = 0
extrude "Extrusion3" add sketch "Sketch3" against normal up to surface (29 mm away)
sketch "Sketch6" plane through (52.5141, 202.7033, 6.4479) normal (0, 0, 1) x (1, 0, 0)
  line L0 (-13.0433, -34.8114) -> (-13.0433, -63.8114) projected
  line L1 (-52.6244, -34.8114) -> (-13.0433, -34.8114) projected
  line L2 (-52.6244, -63.8114) -> (-52.6244, -34.8114) projected
  line L3 (-13.0433, -63.8114) -> (-52.6244, -63.8114) projected
  line L4 (-23.5962, -45.8071) -> (-17.5454, -39.7563)
  line L5 (-17.5454, -39.7563) -> (-19.6668, -37.635)
  line L6 (-19.6668, -37.635) -> (-25.7175, -43.6858)
  line L7 (-25.7175, -43.6858) -> (-23.5962, -45.8071)
  line L8 (-23.5962, -45.8071) -> (-19.6668, -37.635) construction
  line L9 (-17.5454, -39.7563) -> (-25.7175, -43.6858) construction
  line L10 (-39.0797, -45.8071) -> (-43.9064, -40.9803)
  line L11 (-43.9064, -40.9803) -> (-41.7851, -38.859)
  line L12 (-41.7851, -38.859) -> (-36.9583, -43.6858)
  line L13 (-36.9583, -43.6858) -> (-39.0797, -45.8071)
  line L14 (-39.0797, -45.8071) -> (-41.7851, -38.859) construction
  line L15 (-43.9064, -40.9803) -> (-36.9583, -43.6858) construction
  line L16 (-25.7175, -43.6858) -> (-36.9583, -43.6858)
  line L17 (-23.5962, -45.8071) -> (-23.5962, -49.9899)
  line L18 (-23.5962, -49.9899) -> (-39.0797, -49.9899)
  line L19 (-39.0797, -49.9899) -> (-39.0797, -45.8071)
  line L20 (-32.0216, -49.9899) -> (-28.9927, -49.9899)
  line L21 (-28.9927, -49.9899) -> (-28.9927, -57.6065)
  line L22 (-28.9927, -57.6065) -> (-32.0216, -57.6065)
  line L23 (-32.0216, -57.6065) -> (-32.0216, -49.9899)
  line L24 (-39.0797, -45.8071) -> (-39.0797, -49.9899)
  line L25 (-45.7287, -63.8114) -> (-45.7287, -34.8114) construction
  line L26 (-39.0797, -49.9899) -> (-34.9564, -49.9899)
  line L27 (-34.9564, -49.9899) -> (-34.9564, -63.8114)
  line L28 (-34.9564, -63.8114) -> (-39.0797, -63.8114)
  line L29 (-39.0797, -63.8114) -> (-39.0797, -49.9899)
  point P0 (-52.5141, -202.7033)
  point P1 (-21.6315, -41.7211)
  point P2 (-40.4324, -42.333)
  dimension "d35" = 3
  dimension "d36" = 3
  dimension "d37" = 45
  dimension "d38" = 0
extrude "Extrusion6" cut sketch "Sketch6" against normal blind 2 contours L3 L29 L18 L27 | L18 L19 L13 L16 L7 L17 | L18 L21 L22 L23 | L10 L11 L12 L13 | L6 L5 L4 L7
sketch "Sketch7" plane through (-0.1103, 138.8919, 6.4479) normal (0, -1, 0) x (0, 0, 1)
  line L0 (-11.273, -20.7778) -> (-5.5, -20.7778)
  line L1 (-5.5, -20.7778) -> (-5.5, -10.7778)
  line L2 (-5.5, -10.7778) -> (-11.273, -10.7778)
  line L3 (-11.273, -10.7778) -> (-11.273, -20.7778)
  line L4 (-5.5, -34.1825) -> (-5.5, -5.3846) projected
  point P0 (-6.8, -32.6714)
  dimension "d53" = 10
extrude "Extrusion7" add sketch "Sketch7" against normal blind 4
fillet "Fillet1" radius 2 4 edges at (10.6675, 140.8919, -4.8251) (20.6675, 140.8919, -4.8251) (10.6675, 140.8919, 0.9479) (20.6675, 140.8919, 0.9479)
sketch "Sketch8" plane through (-0.1103, 138.8919, 6.4479) normal (0, -1, 0) x (0, 0, 1)
  line L0 (0, 0) -> (-6.8, 0) projected
  line L1 (0, 0) -> (-6.8, 0) projected
  circle A0 centre (-7.6471, -15.7336) radius 2.6
  line L2 (-6.8, 0) -> (-6.8, 0) projected
  point P0 (-6.4479, -0.1103)
  dimension "d58" = 5.2
extrude "Extrusion8" cut sketch "Sketch8" against normal up to surface (4 mm away)
equation "\"d45\" = h1"
properties part number "cellSTORM_v5_chiptray_old_0"
